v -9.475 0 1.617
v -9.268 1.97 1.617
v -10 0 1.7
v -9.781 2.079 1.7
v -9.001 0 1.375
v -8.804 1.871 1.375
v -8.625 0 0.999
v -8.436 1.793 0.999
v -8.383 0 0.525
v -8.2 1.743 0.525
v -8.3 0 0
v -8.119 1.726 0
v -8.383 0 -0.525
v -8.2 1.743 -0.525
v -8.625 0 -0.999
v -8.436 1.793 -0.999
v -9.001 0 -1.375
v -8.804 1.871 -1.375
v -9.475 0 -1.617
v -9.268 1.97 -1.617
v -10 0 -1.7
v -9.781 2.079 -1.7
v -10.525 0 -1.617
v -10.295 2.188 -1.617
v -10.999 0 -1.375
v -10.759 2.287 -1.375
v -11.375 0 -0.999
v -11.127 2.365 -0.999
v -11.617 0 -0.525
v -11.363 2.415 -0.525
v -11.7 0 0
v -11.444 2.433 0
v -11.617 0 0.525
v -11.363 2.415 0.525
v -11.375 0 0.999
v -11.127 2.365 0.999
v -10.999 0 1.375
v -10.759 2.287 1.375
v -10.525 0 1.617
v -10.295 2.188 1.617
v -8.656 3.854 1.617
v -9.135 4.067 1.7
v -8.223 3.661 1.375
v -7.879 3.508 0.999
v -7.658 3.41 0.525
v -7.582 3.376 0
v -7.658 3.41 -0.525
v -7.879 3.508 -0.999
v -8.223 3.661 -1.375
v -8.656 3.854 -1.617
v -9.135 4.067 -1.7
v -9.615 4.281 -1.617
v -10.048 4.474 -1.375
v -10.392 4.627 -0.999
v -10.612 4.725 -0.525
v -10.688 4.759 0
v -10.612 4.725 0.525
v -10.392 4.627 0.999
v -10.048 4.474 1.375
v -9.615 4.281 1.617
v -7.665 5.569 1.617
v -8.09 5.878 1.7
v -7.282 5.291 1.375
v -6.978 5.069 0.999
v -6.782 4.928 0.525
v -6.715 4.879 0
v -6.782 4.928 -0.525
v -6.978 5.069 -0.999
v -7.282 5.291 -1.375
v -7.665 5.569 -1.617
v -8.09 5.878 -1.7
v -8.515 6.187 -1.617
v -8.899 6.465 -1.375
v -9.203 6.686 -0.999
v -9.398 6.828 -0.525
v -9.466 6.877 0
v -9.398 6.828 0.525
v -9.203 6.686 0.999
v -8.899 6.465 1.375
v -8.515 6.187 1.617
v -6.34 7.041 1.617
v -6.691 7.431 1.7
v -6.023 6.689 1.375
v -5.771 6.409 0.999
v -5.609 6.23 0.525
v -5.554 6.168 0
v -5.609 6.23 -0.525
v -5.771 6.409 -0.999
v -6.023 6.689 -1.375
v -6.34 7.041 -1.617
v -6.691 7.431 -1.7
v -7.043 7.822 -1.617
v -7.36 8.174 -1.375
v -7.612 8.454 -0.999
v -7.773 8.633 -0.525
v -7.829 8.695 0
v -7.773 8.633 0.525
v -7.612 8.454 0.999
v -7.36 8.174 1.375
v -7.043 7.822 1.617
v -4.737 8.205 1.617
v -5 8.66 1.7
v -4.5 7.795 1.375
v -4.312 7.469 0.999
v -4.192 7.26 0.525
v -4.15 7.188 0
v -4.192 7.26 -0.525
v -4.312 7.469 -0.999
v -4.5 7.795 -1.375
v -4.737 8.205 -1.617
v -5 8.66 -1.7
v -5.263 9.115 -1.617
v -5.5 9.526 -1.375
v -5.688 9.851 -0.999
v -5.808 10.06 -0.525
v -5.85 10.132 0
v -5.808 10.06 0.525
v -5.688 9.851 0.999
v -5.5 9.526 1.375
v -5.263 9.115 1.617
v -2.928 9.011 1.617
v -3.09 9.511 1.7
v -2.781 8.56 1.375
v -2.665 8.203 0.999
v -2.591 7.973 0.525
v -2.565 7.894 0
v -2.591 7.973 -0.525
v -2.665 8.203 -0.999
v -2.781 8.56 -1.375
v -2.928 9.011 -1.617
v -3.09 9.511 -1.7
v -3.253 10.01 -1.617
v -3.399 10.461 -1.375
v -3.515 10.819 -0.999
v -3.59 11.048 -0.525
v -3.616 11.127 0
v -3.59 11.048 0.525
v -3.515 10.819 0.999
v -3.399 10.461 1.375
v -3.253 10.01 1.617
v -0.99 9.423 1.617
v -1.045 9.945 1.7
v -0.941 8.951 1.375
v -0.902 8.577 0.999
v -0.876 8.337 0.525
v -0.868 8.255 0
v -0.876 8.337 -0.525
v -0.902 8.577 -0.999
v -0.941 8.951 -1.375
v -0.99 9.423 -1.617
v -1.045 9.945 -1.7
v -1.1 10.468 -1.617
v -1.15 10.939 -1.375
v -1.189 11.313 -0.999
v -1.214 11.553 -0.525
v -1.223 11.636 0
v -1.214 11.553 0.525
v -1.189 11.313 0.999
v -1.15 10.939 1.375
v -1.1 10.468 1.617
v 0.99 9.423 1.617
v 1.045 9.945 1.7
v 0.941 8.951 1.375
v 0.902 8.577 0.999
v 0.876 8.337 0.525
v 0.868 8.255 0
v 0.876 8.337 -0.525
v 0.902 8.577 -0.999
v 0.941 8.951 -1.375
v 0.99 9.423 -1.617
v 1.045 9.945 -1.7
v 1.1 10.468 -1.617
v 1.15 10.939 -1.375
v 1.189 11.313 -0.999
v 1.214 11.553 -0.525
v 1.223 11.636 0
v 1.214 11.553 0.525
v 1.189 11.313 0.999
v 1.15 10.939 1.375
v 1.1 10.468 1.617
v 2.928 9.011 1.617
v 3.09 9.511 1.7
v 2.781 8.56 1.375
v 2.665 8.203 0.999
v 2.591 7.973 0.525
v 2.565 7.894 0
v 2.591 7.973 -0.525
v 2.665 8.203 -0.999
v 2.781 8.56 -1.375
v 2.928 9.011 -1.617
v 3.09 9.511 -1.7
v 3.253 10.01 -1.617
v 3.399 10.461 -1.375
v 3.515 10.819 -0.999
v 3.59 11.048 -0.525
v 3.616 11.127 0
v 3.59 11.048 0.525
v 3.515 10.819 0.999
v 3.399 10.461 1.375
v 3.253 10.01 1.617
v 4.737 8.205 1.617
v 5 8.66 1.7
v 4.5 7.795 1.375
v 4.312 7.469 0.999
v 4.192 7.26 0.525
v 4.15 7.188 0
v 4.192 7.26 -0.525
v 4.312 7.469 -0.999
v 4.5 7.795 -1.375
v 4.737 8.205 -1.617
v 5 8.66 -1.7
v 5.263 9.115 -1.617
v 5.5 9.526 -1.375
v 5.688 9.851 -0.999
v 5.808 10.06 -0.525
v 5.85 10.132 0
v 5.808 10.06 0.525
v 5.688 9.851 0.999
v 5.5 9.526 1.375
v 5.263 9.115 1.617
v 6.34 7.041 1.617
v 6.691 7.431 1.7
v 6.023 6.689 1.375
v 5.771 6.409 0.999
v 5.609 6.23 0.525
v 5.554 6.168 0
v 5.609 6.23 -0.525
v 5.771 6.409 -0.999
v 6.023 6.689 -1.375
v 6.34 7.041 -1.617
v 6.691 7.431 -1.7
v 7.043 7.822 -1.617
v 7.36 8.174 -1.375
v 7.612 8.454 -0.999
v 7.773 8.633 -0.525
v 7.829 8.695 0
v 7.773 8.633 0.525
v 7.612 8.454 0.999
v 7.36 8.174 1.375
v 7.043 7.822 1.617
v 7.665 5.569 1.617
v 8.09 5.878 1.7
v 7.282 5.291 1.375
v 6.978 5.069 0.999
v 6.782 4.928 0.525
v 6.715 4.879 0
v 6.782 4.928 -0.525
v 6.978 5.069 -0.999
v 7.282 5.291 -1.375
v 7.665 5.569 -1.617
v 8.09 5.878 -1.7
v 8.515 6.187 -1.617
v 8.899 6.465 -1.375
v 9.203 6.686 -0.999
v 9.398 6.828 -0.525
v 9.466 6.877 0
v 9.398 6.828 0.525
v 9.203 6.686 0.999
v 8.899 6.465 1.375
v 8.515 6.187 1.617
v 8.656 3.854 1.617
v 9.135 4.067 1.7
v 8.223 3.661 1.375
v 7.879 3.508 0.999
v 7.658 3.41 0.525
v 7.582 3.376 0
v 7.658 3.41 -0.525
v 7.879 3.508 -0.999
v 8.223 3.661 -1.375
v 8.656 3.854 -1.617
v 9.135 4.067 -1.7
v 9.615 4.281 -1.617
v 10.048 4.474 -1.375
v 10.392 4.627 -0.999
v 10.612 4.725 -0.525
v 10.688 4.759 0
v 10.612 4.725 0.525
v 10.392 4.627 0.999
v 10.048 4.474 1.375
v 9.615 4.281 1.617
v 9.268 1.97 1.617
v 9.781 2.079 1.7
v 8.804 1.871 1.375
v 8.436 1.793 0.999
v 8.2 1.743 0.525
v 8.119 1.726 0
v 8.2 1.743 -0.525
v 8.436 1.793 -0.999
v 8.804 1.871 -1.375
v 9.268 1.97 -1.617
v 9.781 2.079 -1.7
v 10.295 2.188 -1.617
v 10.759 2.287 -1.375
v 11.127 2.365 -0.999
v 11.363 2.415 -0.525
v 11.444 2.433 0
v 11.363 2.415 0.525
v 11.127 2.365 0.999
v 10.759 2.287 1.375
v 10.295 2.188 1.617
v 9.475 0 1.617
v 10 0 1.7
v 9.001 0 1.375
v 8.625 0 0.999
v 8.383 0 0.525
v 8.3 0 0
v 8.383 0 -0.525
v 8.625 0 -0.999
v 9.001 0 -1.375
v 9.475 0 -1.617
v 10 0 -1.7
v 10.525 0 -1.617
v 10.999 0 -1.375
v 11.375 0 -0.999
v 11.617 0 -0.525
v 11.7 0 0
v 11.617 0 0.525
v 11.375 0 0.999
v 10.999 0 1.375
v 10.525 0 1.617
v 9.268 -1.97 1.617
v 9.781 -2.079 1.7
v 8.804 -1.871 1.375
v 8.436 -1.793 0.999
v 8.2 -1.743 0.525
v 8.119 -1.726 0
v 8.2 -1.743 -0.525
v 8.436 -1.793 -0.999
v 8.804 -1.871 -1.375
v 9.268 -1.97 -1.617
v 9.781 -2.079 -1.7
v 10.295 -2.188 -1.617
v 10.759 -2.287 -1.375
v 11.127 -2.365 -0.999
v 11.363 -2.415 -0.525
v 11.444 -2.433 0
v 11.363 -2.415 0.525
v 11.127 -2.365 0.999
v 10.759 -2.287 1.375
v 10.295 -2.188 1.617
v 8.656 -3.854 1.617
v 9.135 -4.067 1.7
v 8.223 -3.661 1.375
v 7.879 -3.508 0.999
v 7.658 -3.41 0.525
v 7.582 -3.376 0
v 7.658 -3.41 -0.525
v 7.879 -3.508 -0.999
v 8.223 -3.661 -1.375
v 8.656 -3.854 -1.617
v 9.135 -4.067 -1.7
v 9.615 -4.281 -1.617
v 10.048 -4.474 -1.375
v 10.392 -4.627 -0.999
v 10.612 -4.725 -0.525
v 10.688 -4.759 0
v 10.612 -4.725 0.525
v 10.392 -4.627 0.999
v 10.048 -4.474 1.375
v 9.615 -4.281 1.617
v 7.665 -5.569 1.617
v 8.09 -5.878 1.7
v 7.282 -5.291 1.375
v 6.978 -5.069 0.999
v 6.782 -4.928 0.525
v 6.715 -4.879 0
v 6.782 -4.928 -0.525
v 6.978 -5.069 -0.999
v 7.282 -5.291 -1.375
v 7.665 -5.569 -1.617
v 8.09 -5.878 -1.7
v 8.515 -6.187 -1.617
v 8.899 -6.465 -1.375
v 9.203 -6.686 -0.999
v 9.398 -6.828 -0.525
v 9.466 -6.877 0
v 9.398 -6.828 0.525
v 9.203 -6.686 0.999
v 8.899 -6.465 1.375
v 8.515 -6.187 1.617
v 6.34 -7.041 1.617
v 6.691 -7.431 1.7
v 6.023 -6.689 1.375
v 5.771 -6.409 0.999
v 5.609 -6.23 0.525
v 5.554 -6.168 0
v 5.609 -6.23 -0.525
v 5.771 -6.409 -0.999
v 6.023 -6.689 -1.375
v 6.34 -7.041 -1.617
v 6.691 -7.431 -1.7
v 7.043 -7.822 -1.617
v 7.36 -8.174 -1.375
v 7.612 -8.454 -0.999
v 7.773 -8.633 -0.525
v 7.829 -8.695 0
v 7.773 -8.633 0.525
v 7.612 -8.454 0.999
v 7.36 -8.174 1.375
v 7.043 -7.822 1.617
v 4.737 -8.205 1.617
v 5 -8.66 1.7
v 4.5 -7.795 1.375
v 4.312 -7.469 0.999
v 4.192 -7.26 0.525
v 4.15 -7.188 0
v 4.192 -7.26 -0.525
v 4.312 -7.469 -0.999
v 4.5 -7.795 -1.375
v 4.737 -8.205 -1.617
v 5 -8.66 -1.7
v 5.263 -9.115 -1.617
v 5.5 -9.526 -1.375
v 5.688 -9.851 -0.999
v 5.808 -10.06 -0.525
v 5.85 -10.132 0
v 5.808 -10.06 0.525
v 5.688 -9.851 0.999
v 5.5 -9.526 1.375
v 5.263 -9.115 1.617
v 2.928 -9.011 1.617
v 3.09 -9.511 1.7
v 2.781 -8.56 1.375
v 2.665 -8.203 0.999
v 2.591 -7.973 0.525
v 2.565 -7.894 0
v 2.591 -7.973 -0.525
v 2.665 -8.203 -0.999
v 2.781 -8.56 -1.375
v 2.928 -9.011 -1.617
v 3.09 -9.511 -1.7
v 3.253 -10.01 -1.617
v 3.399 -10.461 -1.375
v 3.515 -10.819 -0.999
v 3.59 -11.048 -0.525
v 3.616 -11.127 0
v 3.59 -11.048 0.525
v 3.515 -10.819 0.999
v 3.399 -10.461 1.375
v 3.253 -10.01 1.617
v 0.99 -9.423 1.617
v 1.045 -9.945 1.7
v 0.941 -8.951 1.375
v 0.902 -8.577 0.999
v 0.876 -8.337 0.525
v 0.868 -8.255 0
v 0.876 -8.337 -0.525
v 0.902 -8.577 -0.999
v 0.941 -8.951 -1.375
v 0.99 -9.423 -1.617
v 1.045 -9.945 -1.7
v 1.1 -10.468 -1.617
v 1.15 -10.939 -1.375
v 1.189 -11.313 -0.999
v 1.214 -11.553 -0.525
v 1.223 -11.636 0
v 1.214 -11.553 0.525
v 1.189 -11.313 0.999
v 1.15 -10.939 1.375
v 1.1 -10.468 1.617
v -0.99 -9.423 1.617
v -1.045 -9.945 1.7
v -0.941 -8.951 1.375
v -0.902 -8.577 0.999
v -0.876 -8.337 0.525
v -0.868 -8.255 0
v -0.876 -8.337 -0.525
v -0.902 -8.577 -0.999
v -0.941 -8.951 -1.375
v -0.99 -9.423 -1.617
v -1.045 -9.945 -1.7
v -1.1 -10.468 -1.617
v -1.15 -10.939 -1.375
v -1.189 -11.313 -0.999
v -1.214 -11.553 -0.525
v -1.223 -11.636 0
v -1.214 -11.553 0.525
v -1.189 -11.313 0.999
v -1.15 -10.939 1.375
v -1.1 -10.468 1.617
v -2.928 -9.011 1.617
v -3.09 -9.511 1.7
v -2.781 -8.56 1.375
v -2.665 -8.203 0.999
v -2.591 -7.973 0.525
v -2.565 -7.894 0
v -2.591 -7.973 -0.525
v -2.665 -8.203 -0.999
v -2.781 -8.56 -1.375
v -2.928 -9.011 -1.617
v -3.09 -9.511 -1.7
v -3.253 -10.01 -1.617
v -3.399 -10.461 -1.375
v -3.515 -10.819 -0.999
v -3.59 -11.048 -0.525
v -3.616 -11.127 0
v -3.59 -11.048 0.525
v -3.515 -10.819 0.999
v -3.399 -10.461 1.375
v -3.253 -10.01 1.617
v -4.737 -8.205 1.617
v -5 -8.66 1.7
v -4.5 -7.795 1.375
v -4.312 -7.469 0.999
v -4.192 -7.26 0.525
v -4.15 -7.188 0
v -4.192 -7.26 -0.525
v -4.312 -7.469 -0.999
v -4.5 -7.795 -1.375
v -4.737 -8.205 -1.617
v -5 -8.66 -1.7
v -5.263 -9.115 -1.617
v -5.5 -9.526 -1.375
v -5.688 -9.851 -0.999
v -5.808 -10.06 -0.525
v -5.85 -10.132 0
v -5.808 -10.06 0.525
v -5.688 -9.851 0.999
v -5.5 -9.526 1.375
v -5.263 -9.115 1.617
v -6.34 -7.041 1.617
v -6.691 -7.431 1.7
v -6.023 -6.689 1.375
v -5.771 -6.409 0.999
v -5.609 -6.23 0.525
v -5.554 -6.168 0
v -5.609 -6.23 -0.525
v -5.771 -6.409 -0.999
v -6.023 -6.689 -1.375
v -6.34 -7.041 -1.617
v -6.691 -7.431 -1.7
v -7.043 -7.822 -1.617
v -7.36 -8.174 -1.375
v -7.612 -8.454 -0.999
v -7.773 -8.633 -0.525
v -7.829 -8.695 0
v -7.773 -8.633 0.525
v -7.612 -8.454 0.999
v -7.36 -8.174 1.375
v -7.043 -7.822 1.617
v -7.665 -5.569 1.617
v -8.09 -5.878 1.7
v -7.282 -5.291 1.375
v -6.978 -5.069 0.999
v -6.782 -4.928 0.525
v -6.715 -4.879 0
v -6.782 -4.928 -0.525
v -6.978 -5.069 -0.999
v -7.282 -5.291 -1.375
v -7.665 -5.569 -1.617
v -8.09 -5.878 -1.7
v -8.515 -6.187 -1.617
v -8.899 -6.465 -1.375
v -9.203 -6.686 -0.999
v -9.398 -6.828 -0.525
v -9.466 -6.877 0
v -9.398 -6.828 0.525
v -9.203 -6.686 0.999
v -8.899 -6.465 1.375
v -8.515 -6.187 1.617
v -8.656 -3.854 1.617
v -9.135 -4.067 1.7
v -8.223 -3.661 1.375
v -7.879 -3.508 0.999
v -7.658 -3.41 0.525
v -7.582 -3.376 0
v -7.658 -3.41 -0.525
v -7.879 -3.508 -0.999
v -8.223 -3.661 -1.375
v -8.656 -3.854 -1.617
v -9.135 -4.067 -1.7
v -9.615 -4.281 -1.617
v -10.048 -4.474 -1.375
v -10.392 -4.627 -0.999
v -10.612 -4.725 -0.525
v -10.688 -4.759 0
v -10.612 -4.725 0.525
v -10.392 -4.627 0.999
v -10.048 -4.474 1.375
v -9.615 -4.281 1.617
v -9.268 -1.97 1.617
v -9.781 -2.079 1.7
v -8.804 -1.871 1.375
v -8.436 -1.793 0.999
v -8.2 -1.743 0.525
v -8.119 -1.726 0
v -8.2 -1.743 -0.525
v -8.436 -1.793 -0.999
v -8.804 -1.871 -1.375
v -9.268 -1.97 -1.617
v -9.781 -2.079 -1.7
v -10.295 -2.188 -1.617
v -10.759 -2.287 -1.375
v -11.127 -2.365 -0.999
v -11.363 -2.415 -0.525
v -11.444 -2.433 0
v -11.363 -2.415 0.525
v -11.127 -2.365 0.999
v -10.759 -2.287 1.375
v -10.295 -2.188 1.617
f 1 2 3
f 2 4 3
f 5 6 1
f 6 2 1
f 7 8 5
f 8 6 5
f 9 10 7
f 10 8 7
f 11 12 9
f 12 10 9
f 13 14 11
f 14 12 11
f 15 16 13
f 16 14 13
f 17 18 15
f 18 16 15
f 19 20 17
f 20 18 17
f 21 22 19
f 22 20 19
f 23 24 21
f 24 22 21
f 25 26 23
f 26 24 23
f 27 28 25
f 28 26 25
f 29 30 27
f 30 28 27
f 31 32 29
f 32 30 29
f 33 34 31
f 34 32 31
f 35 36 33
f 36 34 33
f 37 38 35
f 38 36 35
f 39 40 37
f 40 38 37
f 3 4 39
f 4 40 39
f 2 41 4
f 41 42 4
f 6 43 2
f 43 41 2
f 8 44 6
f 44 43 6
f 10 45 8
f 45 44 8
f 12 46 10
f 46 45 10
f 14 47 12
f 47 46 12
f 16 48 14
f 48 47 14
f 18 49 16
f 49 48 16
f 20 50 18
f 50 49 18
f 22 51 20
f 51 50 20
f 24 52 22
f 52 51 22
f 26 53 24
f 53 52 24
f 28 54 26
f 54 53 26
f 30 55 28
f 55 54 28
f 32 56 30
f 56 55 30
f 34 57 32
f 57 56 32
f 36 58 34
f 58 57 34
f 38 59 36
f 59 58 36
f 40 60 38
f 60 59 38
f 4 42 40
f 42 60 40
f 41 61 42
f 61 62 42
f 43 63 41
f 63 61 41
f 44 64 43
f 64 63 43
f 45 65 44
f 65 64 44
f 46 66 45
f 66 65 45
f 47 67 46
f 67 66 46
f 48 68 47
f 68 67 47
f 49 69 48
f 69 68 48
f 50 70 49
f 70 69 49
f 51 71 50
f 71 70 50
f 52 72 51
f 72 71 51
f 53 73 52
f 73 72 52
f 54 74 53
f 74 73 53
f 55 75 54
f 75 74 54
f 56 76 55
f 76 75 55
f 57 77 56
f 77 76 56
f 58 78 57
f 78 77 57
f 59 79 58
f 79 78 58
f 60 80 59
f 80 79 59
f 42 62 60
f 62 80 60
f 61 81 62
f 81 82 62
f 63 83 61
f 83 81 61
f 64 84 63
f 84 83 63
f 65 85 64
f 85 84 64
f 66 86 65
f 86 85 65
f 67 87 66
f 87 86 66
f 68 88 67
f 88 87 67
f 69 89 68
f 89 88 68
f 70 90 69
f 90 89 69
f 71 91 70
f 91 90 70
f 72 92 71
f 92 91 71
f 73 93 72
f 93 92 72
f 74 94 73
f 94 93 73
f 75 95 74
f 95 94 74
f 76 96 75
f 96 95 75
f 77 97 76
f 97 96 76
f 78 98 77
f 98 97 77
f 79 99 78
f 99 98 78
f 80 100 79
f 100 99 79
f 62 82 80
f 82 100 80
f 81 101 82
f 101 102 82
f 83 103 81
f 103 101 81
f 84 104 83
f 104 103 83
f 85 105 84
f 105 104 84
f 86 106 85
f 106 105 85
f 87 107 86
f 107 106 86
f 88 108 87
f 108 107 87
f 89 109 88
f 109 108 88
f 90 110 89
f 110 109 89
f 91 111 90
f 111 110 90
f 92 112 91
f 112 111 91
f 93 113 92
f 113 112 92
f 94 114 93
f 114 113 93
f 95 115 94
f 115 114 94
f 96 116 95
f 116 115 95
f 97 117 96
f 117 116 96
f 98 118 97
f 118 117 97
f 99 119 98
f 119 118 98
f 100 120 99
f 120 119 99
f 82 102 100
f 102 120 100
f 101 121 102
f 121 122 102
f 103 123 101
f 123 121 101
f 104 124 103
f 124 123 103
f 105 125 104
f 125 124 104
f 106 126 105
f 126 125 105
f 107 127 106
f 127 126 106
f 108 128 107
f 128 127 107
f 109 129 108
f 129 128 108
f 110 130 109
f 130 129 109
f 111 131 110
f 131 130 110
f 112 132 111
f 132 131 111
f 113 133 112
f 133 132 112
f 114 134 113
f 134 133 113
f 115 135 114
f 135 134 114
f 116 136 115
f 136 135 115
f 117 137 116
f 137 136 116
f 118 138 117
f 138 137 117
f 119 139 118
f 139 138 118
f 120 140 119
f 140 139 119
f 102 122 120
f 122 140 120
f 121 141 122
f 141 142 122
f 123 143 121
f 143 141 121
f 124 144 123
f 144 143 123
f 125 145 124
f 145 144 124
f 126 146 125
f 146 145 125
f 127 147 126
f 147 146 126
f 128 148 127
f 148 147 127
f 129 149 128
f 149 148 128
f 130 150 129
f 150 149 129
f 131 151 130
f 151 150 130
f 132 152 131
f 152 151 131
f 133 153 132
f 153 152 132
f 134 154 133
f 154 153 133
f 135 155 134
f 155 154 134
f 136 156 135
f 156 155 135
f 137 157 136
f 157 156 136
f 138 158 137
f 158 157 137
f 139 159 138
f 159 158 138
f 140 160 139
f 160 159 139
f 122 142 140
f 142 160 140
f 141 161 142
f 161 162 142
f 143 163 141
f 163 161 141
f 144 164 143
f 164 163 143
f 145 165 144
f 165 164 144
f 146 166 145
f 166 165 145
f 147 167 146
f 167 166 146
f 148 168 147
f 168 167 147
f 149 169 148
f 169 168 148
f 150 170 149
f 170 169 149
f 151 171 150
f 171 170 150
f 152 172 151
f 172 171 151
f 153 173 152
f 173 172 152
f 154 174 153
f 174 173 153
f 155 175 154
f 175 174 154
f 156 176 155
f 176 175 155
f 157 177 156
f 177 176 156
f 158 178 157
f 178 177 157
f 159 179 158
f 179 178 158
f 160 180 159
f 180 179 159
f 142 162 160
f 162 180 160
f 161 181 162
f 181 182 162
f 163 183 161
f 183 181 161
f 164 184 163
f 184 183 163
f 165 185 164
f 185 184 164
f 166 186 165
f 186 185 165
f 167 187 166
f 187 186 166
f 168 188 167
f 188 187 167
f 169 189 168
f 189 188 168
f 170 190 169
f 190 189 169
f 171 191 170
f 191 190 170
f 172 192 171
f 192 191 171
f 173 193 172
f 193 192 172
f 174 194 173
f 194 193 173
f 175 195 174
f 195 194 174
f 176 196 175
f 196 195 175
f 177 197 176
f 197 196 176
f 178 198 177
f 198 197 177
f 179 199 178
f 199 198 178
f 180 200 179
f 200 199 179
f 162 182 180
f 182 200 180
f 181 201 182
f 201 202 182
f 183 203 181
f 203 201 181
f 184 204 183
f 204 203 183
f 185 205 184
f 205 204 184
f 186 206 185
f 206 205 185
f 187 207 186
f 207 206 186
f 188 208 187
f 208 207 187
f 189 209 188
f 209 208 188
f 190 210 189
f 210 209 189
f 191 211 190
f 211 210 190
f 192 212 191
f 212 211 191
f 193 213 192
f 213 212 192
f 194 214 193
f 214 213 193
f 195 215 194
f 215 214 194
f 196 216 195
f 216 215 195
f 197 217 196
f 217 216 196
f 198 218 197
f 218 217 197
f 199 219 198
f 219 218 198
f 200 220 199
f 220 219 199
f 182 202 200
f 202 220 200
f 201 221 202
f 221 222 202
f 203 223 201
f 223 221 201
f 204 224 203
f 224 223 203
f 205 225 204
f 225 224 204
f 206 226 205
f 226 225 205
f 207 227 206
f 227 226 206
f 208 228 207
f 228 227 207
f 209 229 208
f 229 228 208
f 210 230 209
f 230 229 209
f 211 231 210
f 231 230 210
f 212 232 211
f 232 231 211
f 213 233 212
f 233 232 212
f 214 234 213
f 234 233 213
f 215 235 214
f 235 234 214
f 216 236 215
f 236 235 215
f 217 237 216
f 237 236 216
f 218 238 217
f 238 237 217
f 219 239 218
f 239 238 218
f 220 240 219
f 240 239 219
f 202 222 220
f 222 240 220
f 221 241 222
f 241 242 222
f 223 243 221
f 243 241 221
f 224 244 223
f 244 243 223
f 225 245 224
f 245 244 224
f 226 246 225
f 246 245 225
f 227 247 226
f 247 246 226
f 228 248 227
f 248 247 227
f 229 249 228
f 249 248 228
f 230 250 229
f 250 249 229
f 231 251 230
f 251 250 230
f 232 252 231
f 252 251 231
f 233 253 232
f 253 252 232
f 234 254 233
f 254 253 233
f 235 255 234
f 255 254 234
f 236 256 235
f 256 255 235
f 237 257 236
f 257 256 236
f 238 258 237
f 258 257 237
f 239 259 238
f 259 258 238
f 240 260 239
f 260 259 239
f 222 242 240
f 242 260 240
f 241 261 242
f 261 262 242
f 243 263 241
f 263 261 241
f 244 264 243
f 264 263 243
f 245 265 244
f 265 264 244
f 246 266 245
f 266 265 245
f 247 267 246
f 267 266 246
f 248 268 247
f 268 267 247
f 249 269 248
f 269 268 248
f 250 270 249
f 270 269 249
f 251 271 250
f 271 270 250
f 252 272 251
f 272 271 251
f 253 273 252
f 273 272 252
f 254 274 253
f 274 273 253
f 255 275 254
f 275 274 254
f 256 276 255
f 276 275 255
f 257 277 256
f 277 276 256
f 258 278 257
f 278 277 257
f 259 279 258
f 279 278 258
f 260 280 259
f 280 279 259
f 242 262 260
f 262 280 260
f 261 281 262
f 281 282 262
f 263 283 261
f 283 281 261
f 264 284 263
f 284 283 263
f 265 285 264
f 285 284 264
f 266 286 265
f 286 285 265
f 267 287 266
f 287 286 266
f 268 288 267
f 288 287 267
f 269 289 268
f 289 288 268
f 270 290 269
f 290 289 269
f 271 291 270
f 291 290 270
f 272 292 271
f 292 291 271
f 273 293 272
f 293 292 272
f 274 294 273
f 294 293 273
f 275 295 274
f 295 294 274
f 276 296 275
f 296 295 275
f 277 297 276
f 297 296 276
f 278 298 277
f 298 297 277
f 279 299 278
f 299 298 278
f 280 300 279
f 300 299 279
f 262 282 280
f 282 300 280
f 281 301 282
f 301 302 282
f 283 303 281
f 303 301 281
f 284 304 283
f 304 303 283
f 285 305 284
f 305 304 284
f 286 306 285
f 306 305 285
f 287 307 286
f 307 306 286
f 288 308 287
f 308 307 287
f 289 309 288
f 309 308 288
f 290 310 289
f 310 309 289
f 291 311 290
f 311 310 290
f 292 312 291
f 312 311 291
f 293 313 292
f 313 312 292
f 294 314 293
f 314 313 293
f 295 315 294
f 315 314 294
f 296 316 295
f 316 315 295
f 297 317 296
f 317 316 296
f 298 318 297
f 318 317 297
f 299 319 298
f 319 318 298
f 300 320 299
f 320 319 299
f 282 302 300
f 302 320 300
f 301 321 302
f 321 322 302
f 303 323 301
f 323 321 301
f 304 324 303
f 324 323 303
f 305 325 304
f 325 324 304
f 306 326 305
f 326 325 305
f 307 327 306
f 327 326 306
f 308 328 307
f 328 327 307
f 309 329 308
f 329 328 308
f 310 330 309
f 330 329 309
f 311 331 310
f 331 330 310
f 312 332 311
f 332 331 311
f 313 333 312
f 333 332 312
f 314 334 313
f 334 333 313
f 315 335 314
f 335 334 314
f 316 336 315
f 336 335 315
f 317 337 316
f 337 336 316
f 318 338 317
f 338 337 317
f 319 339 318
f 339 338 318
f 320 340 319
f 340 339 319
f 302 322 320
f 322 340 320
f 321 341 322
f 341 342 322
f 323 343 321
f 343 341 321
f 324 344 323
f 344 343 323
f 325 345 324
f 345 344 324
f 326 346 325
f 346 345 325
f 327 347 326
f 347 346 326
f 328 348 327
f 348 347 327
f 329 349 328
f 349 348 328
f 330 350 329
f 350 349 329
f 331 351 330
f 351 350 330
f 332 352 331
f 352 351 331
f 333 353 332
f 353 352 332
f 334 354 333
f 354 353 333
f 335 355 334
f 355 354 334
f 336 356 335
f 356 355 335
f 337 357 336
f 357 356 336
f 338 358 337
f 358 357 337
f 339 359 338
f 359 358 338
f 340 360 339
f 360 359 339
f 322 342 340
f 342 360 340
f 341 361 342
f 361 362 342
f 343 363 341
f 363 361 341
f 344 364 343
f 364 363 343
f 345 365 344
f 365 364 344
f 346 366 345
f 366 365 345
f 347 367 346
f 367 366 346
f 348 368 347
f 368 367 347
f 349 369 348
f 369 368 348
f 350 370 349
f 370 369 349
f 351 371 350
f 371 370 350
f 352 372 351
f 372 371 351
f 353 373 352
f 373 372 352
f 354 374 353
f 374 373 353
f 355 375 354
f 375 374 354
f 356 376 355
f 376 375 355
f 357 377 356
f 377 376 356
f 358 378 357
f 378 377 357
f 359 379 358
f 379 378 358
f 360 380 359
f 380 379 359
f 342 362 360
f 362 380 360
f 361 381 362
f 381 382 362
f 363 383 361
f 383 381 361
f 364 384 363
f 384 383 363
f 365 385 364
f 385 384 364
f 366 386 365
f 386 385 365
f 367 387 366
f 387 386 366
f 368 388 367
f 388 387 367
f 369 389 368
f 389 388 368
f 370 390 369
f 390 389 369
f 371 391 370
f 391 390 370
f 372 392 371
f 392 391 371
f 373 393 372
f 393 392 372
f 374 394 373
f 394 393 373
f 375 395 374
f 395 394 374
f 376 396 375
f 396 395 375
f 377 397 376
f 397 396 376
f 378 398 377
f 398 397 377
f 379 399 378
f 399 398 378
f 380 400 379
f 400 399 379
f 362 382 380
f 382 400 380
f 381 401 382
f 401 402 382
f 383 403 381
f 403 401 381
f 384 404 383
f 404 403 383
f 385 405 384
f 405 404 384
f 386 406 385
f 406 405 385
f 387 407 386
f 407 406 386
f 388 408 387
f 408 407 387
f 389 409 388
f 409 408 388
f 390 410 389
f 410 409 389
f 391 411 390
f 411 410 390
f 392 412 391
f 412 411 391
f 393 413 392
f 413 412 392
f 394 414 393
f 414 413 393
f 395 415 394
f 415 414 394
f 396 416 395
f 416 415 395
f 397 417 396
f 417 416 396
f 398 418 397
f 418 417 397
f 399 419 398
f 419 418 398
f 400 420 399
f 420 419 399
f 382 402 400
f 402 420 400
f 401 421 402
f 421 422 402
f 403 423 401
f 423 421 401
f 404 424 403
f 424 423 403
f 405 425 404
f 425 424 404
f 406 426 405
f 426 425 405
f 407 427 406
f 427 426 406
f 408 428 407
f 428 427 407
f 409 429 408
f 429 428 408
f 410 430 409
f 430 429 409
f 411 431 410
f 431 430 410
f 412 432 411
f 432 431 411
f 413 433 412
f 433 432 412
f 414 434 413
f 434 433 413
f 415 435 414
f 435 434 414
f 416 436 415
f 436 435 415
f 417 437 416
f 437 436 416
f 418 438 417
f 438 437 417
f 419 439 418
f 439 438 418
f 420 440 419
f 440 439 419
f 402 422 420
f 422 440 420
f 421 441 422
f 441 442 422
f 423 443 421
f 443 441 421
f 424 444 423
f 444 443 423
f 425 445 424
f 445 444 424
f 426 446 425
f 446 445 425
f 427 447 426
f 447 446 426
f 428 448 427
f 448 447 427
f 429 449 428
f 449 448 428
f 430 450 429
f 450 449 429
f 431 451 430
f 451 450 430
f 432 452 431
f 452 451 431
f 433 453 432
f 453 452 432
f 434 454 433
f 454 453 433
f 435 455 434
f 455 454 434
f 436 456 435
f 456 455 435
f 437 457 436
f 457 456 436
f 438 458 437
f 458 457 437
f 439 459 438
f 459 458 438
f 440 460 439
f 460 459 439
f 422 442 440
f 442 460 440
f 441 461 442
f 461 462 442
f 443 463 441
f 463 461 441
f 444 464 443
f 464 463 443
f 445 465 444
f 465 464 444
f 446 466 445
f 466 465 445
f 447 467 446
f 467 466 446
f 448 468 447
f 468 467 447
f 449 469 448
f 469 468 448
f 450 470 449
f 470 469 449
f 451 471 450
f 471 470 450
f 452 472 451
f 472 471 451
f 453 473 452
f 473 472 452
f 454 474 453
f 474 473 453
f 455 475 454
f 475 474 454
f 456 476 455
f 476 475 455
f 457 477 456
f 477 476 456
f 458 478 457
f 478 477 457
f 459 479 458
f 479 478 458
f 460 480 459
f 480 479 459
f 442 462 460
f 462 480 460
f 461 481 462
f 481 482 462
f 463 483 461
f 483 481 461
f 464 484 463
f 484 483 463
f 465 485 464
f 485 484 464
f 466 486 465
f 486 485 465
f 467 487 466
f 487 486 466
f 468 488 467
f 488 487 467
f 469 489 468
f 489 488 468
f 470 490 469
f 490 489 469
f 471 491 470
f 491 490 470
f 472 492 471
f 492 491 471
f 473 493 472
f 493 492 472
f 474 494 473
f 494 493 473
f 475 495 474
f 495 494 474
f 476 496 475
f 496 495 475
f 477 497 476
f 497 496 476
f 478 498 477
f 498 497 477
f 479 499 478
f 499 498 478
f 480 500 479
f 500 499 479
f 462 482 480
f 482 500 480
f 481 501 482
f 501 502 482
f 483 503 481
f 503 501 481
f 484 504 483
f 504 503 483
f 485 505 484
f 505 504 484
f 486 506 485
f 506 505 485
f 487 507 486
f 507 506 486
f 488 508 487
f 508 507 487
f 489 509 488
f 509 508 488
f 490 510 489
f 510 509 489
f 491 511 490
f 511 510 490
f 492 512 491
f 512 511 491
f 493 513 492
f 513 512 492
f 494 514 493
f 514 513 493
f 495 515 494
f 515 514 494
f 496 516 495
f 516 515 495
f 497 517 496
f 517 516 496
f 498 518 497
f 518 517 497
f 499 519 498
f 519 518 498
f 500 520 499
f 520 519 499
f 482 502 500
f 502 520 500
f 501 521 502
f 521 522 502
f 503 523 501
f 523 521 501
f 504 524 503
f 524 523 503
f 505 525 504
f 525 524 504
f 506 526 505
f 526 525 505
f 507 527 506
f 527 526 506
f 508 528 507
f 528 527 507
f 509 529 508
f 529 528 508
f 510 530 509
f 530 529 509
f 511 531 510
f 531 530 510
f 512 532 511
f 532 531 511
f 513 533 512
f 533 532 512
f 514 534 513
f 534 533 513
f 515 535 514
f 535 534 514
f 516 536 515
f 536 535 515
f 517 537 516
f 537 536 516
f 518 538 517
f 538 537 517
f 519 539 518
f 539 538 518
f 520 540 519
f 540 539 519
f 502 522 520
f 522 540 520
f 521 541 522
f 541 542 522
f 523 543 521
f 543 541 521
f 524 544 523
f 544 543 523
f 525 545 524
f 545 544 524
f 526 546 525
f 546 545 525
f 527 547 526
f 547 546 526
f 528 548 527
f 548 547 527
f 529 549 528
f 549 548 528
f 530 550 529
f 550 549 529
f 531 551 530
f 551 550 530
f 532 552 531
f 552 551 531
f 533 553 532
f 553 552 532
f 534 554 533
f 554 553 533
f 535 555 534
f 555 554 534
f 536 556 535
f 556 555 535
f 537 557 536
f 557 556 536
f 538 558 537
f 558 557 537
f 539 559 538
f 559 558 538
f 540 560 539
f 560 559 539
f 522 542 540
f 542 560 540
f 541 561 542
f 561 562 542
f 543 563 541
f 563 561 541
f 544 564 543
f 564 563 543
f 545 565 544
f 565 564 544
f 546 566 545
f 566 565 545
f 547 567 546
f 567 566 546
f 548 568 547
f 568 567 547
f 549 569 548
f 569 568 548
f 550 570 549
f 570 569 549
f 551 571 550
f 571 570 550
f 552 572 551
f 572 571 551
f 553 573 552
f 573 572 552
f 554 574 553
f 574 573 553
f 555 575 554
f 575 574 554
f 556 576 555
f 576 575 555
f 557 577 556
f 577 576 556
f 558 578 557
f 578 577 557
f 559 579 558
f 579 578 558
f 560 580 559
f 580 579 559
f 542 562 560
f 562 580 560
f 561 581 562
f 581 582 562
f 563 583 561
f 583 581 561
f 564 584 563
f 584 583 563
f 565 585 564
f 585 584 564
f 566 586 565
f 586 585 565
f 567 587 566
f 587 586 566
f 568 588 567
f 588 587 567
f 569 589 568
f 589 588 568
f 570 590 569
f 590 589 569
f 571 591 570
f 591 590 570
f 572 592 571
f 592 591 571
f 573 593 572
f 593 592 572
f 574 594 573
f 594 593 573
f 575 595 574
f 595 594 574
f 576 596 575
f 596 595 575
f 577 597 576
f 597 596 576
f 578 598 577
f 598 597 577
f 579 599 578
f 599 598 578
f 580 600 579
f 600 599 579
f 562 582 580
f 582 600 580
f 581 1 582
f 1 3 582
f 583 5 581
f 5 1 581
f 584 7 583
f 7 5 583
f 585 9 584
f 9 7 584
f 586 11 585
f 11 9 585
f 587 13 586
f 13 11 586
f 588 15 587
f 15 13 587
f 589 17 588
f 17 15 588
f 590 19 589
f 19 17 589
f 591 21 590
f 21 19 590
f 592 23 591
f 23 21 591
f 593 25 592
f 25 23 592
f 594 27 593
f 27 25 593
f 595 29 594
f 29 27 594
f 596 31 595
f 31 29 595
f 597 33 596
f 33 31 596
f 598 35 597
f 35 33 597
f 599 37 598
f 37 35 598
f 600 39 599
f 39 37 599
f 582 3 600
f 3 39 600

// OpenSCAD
rotate_extrude(angle = 360) {
    translate([10, 0, 0]) {
        rotate([0, 0, 90]) {
            circle(1.7, $fn=20);
        }
    }
}
